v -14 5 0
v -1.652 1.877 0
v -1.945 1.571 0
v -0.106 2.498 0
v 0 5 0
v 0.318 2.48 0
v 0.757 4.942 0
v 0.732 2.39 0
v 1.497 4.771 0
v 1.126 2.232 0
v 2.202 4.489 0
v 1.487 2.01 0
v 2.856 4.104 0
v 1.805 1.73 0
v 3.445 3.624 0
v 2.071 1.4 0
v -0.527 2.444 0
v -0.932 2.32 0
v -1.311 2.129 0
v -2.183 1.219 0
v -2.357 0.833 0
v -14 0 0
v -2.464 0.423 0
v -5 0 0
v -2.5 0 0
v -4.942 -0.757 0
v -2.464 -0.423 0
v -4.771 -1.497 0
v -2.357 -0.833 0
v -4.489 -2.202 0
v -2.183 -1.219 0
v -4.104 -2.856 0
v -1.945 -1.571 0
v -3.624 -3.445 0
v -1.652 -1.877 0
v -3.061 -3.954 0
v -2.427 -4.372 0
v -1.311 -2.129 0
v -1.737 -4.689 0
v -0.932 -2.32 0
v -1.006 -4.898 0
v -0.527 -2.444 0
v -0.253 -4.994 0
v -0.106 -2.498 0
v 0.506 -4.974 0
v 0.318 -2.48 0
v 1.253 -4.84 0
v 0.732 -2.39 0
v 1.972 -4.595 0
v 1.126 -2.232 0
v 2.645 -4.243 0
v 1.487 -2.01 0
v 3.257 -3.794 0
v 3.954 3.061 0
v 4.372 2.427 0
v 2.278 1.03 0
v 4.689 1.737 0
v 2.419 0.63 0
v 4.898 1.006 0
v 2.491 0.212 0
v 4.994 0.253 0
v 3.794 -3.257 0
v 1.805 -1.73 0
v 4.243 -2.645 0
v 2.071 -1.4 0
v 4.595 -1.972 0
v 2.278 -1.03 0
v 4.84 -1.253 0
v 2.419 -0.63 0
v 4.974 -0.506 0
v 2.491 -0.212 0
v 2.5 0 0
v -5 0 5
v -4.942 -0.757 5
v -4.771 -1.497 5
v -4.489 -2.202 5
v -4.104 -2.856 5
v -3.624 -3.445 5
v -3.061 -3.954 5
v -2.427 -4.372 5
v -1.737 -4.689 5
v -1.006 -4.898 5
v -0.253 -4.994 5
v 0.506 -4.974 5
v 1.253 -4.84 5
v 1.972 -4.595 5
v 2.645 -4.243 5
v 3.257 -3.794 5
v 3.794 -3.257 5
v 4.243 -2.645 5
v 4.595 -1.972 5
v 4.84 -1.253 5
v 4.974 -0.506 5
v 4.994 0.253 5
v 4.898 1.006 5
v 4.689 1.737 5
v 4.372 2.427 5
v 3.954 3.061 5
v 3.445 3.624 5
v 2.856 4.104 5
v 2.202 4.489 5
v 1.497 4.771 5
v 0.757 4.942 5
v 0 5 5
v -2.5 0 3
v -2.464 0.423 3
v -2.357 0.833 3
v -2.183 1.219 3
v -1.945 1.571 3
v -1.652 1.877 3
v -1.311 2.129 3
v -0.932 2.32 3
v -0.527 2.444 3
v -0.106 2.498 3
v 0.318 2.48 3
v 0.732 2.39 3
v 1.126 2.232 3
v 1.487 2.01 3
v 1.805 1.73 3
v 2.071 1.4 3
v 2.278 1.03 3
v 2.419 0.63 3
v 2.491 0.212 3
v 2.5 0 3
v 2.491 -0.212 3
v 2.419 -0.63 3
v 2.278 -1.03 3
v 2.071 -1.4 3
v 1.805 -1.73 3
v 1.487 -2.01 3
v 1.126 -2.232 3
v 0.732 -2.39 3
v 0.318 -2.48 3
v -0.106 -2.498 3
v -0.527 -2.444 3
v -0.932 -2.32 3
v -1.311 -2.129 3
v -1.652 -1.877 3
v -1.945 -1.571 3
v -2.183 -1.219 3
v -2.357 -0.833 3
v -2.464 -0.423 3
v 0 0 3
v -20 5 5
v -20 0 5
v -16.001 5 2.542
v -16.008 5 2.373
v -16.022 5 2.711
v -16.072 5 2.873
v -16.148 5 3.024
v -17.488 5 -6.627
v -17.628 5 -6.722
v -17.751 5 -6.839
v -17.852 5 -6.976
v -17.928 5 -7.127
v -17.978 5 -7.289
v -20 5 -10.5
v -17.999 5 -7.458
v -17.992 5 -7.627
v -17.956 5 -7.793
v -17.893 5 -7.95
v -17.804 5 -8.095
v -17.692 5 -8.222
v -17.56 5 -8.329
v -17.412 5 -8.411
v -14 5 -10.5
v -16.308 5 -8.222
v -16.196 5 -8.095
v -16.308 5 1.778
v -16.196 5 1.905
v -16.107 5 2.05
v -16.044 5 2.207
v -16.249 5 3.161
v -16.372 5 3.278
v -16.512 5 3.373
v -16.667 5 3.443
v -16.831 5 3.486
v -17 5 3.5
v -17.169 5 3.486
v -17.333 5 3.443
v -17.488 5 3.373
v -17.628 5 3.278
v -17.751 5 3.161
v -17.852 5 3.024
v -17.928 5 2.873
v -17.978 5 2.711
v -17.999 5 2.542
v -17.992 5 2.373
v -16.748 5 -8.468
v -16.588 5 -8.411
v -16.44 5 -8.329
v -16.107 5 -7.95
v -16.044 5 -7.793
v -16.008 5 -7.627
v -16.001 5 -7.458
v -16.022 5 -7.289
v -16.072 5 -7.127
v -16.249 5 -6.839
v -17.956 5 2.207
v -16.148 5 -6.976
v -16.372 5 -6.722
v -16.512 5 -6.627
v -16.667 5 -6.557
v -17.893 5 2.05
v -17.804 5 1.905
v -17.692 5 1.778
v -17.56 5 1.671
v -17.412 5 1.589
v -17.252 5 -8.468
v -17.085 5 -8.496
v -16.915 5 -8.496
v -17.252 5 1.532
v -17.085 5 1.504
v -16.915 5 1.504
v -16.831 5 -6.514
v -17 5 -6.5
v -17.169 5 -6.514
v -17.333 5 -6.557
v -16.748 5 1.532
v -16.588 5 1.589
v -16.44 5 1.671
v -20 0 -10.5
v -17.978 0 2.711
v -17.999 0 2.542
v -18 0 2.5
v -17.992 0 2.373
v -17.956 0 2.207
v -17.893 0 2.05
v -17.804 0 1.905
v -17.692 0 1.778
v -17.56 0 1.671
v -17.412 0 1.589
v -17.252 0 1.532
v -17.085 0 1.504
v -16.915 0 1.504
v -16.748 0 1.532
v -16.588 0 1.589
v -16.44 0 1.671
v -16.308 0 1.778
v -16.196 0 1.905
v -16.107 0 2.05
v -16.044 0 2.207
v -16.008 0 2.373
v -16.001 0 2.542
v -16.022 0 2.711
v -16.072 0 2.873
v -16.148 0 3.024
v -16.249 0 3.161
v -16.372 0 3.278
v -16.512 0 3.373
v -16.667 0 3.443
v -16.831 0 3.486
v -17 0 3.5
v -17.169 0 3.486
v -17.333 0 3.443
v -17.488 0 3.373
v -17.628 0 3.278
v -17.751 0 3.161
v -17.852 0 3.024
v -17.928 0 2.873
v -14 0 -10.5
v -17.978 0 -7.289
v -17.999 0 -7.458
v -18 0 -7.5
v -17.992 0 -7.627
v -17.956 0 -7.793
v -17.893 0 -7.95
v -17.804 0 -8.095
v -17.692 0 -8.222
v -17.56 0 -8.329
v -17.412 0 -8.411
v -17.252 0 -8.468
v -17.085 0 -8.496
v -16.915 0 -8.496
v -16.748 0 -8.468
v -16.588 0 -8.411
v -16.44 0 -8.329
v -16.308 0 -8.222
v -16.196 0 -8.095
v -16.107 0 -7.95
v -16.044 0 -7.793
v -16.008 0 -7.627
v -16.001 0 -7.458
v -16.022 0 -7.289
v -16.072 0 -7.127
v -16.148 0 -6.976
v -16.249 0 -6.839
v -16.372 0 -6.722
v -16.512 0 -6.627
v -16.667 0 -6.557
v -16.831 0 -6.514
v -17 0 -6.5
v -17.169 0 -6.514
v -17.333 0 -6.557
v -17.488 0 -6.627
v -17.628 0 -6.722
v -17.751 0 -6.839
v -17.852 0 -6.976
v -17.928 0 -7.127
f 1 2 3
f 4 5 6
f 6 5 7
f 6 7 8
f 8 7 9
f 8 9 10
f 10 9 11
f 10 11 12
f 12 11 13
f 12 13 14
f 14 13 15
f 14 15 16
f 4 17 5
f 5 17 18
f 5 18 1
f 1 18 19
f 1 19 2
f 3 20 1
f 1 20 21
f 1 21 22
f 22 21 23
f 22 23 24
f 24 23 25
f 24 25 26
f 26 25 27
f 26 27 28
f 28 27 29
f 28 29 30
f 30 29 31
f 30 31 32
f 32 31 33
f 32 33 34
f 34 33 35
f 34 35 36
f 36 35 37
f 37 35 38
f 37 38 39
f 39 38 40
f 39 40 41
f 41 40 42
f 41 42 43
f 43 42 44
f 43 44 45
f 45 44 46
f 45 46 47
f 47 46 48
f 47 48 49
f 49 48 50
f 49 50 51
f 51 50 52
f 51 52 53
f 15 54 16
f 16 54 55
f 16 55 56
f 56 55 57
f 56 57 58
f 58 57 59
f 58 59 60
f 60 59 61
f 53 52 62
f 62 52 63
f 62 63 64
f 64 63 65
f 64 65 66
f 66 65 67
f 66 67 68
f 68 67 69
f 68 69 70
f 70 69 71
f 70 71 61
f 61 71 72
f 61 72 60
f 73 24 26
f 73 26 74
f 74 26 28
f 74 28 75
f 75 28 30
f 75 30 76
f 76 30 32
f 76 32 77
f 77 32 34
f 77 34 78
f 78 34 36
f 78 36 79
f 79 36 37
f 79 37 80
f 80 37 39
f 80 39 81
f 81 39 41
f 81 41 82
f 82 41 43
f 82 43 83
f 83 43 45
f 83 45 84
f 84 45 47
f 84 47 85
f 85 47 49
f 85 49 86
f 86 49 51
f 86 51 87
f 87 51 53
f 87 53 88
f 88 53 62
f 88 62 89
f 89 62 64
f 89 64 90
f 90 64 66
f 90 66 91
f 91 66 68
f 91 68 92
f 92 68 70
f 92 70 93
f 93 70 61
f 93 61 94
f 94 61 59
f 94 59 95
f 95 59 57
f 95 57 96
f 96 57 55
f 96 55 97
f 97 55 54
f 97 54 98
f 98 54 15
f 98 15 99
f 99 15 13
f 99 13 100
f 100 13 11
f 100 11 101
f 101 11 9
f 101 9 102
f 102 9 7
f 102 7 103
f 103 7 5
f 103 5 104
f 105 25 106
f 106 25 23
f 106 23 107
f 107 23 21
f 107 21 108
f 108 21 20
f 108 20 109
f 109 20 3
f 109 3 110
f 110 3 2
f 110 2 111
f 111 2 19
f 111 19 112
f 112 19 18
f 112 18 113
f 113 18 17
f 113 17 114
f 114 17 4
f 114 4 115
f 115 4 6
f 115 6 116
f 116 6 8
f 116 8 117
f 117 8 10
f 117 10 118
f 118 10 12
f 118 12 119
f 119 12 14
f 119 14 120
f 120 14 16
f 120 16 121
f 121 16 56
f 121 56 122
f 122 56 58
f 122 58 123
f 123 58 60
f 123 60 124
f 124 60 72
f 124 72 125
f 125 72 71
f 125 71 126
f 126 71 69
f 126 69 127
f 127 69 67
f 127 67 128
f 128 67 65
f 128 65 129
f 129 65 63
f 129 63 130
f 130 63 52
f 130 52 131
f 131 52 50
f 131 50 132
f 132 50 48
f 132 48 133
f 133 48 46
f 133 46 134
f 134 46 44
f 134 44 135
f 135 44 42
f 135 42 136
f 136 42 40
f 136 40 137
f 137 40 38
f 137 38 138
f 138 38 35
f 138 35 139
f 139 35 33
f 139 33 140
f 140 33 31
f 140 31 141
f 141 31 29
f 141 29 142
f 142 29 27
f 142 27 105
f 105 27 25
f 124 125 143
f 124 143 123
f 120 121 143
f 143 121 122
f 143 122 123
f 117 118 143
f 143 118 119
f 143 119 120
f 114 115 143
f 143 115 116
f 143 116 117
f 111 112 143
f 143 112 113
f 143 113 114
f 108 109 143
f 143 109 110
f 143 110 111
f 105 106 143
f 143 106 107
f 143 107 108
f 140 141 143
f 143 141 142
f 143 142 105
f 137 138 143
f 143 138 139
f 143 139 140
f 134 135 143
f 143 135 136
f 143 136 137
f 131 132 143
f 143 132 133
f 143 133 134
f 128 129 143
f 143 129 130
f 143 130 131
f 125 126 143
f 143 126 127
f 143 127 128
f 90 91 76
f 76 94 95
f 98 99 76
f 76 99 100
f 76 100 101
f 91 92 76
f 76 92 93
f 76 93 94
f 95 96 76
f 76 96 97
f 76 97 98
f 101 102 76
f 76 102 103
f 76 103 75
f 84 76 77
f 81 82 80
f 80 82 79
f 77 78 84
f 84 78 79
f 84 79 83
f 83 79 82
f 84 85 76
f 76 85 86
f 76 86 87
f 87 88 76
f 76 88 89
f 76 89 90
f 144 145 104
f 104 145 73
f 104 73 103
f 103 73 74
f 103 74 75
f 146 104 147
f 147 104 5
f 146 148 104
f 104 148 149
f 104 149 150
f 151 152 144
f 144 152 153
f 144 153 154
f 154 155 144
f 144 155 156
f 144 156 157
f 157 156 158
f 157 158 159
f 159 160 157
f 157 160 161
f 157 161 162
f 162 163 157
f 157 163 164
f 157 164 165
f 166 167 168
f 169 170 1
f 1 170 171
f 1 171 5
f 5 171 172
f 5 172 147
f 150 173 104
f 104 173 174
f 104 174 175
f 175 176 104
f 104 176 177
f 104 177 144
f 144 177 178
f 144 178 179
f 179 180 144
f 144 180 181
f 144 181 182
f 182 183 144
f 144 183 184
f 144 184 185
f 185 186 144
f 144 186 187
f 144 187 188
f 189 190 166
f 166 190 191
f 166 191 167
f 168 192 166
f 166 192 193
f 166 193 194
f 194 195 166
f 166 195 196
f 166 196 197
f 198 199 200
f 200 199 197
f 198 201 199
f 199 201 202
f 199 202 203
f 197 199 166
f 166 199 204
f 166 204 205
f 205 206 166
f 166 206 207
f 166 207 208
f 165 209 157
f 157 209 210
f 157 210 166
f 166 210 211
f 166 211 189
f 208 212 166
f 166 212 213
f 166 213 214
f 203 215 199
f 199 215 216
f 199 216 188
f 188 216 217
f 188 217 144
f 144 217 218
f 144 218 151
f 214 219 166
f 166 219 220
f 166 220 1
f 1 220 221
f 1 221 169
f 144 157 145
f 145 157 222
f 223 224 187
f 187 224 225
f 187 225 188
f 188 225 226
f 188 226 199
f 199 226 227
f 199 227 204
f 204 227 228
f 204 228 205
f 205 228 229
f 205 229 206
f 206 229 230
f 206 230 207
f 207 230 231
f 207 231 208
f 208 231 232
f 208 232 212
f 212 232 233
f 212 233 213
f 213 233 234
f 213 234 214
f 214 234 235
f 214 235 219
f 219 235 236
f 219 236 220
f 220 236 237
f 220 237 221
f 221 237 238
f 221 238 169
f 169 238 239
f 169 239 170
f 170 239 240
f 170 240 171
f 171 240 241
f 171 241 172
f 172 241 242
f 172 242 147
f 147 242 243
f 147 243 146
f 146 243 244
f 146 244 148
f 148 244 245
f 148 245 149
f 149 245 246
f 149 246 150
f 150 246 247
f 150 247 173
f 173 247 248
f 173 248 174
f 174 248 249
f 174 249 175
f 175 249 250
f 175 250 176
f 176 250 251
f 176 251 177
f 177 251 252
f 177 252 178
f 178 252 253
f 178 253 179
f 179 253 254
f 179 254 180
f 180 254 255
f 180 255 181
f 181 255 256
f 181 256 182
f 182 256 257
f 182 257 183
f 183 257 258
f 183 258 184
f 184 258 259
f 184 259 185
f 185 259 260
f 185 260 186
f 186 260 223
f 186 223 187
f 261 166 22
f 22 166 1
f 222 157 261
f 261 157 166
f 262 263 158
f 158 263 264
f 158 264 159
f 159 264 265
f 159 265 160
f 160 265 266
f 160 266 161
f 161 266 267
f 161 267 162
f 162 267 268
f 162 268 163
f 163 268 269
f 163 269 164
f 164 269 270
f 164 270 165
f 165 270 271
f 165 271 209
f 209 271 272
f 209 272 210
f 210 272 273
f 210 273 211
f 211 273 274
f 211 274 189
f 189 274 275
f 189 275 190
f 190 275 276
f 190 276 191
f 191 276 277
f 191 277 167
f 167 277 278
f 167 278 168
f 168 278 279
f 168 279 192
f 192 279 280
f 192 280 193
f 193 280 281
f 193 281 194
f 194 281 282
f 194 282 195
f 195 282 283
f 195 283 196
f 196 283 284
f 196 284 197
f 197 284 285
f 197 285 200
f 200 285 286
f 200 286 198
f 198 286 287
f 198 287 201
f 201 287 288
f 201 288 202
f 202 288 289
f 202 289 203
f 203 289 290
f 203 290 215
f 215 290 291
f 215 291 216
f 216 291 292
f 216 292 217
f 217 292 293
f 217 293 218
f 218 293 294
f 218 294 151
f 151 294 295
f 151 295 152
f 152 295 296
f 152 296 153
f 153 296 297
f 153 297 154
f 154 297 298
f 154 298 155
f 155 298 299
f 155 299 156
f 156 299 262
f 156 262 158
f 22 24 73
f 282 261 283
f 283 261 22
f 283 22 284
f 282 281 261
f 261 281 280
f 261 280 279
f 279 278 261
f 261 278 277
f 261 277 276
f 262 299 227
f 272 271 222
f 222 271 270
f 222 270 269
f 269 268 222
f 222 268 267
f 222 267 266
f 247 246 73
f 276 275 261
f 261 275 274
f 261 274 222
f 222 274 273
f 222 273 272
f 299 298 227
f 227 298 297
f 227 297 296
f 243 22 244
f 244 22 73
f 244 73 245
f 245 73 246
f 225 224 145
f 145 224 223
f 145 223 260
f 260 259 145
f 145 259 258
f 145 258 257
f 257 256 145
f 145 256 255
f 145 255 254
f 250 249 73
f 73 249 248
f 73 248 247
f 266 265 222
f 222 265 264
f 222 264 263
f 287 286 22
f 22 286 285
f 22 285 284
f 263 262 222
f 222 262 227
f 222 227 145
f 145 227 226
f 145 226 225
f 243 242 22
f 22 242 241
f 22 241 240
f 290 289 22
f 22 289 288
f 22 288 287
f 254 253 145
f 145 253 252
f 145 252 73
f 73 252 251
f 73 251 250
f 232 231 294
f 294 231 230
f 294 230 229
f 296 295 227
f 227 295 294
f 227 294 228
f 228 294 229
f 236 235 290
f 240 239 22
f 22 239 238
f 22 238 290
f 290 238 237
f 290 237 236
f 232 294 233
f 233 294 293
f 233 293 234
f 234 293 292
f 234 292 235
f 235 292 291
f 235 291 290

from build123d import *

# Parameters (mm, degrees)
SKETCH_1_R               = 5
SKETCH_1_R_2             = 2.5
EXTRUDE_1_DEPTH          = 3
SKETCH_2_R               = 5
EXTRUDE_2_DEPTH          = 2
EXTRUDE_3_DEPTH          = 5
SKETCH_6_R               = 1
CUT_EXTRUDE_2_DEPTH      = 10
SKETCH_7_W               = 6
SKETCH_7_H               = 10
EXTRUDE_5_DEPTH          = 10.5
SKETCH_8_R               = 1
CUT_EXTRUDE_3_DEPTH      = 12
CUT_EXTRUDE_4_DEPTH      = 24.135470603
CUT_EXTRUDE_4_DEPTH_BACK = 24.135470603


with BuildPart() as part:
    # 草图1 → 凸台-拉伸1 (new body)
    with BuildSketch(Plane.XY):
        Circle(SKETCH_1_R)
        Circle(SKETCH_1_R_2, mode=Mode.SUBTRACT)
    extrude(amount=EXTRUDE_1_DEPTH)

    # 草图2 → 凸台-拉伸2 (add)
    with BuildSketch(Plane.XY.offset(3)):
        Circle(SKETCH_2_R)
    extrude(amount=EXTRUDE_2_DEPTH)

    # 草图3 → 凸台-拉伸3 (add)
    with BuildSketch(Plane(origin=(0, 0, 0), x_dir=(-1, 0, 0), z_dir=(0, 0, -1))):
        with BuildLine():
            Line((0, 5), (20, 5))
            Line((20, 5), (20, -5))
            Line((20, -5), (0, -5))
            ThreePointArc((0, -5), (5, 0), (0, 5))
        make_face()
    extrude(amount=-EXTRUDE_3_DEPTH)

    # 草图6 → 切除-拉伸2 (cut)
    with BuildSketch(Plane(origin=(0, 5, 0), x_dir=(1, 0, 0), z_dir=(0, 1, 0))):
        with Locations(Location((-17, -2.5, 0), (0, 0, 270))):
            Circle(SKETCH_6_R)
    extrude(amount=-CUT_EXTRUDE_2_DEPTH, mode=Mode.SUBTRACT)

    # 草图7 → 凸台-拉伸5 (add)
    with BuildSketch(Plane(origin=(0, 0, 0), x_dir=(-1, 0, 0), z_dir=(0, 0, -1))):
        with Locations((17, 0)):
            Rectangle(SKETCH_7_W, SKETCH_7_H)
    extrude(amount=EXTRUDE_5_DEPTH)

    # 草图8 → 切除-拉伸3 (cut)
    with BuildSketch(Plane(origin=(0, 5, 0), x_dir=(1, 0, 0), z_dir=(0, 1, 0))):
        with Locations(Location((-17, 7.5, 0), (0, 0, 270))):
            Circle(SKETCH_8_R)
    extrude(amount=-CUT_EXTRUDE_3_DEPTH, mode=Mode.SUBTRACT)

    # 草图9 → 切除-拉伸4 (cut, two sides: drawn at the far end of the back side and taken through both)
    with BuildSketch(Plane(origin=(0, 0, 0), x_dir=(-1, 0, 0), z_dir=(0, 0, -1)).offset(-CUT_EXTRUDE_4_DEPTH_BACK)):
        with BuildLine():
            Line((5, 0), (20, 0))
            Line((20, 0), (20, -5))
            Line((20, -5), (0, -5))
            ThreePointArc((0, -5), (3.535533906, -3.535533906), (5, 0))
        make_face()
    extrude(amount=CUT_EXTRUDE_4_DEPTH + CUT_EXTRUDE_4_DEPTH_BACK, mode=Mode.SUBTRACT)


solid = part.part
